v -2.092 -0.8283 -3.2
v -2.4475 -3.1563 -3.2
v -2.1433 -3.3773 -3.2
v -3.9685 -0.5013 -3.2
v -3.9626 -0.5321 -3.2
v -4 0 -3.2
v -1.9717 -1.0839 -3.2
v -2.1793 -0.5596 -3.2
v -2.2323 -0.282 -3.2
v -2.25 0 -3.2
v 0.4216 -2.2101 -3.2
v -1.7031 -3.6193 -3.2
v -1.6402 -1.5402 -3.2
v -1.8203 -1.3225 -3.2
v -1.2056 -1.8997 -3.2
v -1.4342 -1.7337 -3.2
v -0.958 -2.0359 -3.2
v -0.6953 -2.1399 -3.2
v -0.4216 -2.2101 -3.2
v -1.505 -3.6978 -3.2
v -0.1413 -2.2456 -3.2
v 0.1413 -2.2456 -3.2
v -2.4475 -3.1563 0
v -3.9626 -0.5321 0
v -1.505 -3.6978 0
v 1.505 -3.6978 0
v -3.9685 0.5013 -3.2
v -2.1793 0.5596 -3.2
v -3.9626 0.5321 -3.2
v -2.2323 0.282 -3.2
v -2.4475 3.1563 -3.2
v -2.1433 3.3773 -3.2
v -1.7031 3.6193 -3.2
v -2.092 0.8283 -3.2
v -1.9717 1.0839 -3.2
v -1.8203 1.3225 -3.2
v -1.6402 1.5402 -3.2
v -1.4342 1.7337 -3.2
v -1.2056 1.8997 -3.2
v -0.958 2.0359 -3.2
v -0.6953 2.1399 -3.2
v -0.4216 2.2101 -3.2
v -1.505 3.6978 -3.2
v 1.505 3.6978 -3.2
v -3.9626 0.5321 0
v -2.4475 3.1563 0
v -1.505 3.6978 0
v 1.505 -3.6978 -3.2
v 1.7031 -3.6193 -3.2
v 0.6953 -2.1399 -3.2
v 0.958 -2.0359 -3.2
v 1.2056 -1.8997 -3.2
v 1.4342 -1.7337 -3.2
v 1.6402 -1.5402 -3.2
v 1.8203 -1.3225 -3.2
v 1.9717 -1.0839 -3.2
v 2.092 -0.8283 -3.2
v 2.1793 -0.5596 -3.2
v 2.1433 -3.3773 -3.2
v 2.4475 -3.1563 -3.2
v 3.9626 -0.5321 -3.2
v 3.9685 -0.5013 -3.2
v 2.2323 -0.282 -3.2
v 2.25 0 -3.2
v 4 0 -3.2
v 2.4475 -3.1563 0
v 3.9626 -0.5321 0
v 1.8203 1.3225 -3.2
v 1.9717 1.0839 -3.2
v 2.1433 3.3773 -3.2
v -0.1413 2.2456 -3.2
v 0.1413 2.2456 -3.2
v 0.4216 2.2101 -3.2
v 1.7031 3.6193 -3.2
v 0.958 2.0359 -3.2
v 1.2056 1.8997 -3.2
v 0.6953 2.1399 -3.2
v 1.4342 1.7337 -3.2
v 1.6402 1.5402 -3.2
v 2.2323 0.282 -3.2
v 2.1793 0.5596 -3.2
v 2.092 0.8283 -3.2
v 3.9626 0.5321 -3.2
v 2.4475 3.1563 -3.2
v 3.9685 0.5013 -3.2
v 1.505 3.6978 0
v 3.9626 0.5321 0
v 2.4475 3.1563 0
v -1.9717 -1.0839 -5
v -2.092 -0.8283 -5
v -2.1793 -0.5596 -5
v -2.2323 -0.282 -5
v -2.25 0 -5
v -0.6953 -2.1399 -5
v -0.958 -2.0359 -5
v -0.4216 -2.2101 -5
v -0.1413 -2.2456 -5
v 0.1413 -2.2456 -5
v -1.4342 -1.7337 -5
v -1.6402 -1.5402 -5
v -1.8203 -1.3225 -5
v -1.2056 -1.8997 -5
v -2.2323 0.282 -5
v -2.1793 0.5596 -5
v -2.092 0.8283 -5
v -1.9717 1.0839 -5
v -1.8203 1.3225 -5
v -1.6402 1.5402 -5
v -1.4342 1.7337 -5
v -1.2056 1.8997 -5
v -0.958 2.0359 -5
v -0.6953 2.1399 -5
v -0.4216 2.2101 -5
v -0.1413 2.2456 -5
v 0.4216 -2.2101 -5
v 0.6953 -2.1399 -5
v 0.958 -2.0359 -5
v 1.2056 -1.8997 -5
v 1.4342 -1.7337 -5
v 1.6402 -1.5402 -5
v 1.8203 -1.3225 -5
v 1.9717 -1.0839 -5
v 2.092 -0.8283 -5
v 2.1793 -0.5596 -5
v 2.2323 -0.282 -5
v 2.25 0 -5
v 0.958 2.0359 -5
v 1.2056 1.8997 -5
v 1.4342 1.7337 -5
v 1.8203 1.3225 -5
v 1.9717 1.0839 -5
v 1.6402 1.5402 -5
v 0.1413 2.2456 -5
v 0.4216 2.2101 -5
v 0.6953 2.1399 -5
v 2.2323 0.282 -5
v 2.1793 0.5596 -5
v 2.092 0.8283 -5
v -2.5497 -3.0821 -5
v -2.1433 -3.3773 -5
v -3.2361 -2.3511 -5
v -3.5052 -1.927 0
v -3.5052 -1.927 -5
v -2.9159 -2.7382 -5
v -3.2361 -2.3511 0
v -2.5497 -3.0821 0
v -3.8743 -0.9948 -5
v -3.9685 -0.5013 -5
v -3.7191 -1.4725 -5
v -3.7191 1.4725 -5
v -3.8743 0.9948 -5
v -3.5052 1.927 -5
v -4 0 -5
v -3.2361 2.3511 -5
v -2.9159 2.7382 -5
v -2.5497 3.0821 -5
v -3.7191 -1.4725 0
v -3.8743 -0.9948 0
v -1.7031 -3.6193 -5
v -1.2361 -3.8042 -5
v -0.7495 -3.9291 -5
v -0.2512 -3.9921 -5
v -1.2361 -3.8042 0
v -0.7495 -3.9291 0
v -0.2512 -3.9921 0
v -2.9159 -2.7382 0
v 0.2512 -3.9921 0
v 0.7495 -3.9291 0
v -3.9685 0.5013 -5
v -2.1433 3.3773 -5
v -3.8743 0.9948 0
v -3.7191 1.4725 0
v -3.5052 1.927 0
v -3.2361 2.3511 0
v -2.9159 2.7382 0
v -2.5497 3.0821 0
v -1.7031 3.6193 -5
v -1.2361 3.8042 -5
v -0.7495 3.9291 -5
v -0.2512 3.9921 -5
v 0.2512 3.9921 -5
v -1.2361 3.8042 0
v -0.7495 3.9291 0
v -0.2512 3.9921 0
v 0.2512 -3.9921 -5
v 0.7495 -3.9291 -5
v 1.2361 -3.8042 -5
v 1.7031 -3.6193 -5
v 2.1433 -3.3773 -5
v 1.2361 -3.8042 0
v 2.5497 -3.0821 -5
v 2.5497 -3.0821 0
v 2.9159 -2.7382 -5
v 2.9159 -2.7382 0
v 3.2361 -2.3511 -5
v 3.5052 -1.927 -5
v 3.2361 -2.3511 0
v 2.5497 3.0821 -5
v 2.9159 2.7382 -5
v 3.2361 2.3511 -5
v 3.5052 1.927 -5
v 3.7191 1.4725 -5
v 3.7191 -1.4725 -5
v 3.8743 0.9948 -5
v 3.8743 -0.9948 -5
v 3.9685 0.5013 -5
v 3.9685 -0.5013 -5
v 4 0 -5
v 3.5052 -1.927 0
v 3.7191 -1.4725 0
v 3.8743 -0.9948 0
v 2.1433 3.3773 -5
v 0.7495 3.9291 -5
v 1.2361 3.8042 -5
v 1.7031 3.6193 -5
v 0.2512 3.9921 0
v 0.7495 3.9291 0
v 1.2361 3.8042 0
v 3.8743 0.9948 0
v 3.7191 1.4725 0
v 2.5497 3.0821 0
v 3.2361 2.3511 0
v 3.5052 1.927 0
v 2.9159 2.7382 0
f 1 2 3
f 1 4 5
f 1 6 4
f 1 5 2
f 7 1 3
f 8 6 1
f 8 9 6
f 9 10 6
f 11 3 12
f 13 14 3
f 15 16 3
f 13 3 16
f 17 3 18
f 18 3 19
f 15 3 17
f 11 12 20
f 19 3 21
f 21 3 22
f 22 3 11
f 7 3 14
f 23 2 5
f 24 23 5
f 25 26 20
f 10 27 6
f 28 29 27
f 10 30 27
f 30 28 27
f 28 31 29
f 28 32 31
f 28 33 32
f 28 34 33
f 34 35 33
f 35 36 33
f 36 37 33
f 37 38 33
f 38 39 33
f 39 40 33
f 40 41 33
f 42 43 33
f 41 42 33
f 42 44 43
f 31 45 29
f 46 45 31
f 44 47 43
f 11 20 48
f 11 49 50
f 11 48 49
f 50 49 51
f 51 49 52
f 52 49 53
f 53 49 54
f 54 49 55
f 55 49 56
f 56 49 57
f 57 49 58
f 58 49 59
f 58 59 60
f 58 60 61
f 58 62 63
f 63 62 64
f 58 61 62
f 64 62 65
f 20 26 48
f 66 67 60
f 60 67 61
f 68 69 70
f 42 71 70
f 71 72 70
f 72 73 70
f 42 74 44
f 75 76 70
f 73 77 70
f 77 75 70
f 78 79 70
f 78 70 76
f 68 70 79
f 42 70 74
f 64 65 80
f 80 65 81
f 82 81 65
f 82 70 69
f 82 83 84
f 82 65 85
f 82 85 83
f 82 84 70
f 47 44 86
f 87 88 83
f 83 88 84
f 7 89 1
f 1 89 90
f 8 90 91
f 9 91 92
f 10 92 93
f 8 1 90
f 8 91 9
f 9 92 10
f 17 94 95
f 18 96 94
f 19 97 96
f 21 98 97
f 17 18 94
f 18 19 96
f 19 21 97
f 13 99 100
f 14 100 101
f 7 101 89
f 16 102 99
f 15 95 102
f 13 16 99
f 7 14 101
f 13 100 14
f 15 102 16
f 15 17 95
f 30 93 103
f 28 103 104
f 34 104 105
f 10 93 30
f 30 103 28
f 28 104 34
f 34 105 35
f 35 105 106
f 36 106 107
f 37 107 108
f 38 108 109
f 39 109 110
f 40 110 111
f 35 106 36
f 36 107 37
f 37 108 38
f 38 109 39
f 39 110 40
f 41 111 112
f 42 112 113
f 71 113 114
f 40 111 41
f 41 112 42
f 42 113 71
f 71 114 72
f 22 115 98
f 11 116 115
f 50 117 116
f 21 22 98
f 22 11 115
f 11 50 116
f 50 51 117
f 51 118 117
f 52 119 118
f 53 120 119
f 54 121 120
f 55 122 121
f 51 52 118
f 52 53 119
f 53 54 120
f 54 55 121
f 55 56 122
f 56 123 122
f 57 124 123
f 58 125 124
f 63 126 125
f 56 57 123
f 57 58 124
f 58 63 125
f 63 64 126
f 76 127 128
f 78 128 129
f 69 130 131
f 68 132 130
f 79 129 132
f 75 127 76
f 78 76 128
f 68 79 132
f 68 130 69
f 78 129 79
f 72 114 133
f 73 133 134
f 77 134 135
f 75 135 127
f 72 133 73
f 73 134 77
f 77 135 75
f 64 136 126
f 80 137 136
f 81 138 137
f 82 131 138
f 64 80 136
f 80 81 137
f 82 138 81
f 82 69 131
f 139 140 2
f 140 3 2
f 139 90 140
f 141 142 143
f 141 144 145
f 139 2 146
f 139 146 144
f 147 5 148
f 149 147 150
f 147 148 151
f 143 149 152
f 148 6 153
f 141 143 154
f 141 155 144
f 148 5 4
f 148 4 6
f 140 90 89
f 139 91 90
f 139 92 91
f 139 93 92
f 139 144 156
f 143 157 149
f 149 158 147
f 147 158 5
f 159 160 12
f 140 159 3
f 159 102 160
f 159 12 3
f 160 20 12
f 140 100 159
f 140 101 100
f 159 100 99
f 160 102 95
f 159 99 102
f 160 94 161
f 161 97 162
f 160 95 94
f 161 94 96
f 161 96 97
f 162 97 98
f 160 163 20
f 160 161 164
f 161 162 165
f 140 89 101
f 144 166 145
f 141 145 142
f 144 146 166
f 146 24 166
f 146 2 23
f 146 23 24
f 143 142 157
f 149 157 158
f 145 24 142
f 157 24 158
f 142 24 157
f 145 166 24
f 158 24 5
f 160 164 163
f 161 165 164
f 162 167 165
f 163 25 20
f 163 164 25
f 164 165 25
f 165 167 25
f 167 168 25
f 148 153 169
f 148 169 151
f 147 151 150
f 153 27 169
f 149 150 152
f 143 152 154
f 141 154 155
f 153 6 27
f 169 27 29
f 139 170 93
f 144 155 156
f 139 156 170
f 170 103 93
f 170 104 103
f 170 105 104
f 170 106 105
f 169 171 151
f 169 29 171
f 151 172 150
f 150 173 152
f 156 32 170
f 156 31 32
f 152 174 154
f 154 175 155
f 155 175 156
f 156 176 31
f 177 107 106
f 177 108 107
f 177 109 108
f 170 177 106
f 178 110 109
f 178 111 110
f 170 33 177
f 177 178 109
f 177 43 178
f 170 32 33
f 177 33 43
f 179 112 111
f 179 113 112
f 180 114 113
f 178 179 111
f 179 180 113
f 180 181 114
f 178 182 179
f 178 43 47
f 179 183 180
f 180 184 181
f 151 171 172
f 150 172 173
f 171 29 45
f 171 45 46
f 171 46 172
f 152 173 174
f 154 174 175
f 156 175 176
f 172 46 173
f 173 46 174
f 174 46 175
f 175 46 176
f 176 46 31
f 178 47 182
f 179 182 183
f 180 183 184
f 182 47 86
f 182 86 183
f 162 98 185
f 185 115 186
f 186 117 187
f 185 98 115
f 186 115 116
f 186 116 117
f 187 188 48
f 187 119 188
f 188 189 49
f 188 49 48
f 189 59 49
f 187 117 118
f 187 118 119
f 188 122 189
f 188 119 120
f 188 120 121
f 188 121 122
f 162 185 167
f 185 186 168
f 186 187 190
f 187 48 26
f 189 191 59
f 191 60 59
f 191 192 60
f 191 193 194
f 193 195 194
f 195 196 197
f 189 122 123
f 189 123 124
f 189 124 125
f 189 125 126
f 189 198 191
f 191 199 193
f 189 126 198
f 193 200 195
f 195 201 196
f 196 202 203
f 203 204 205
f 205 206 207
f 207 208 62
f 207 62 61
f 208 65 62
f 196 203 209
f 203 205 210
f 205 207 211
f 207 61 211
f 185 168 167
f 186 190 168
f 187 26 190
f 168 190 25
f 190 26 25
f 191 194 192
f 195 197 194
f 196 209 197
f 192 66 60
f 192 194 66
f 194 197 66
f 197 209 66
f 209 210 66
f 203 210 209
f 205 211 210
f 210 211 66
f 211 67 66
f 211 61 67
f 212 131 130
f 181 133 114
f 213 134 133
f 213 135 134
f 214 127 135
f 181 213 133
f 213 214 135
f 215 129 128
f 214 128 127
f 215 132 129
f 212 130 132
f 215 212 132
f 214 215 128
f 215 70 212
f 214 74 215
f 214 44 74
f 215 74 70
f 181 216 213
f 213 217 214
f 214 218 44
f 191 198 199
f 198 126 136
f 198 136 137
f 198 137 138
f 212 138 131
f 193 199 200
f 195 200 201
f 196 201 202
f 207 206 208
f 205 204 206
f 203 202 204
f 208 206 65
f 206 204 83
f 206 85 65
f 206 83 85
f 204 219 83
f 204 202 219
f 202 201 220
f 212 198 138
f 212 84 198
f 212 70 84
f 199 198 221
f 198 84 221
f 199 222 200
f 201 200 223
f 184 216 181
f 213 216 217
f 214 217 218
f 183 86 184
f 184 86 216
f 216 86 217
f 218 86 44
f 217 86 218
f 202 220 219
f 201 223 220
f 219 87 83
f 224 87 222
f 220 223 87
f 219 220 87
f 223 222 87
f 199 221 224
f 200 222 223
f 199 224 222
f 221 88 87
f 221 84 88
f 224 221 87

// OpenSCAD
$fn = 50;

difference() {
	union() {
		translate(v = [0, 0, -5.0]) {
			cylinder(h = 8.0, r = 4.0);
		}
	}
	union() {
		translate(v = [0, 0, 0]) {
			rotate(a = [0, 0, 0]) {
				difference() {
					union() {
						translate(v = [0, 0, -3.2]) {
							linear_extrude(height = 3.2) {
								polygon(points = [[4.2698, 0.0], [2.1349000000000005, 3.697755269078796], [-2.134899999999999, 3.6977552690787965], [-4.2698, 5.228996902999369e-16], [-2.134900000000002, -3.6977552690787956], [2.1348999999999974, -3.697755269078798]]);
							}
						}
					}
					union();
				}
			}
		}
		#cylinder(h = 3, r = 5.0);
		#translate(v = [0, 0, -100.0]) {
			cylinder(h = 200, r = 2.25);
		}
	}
}
